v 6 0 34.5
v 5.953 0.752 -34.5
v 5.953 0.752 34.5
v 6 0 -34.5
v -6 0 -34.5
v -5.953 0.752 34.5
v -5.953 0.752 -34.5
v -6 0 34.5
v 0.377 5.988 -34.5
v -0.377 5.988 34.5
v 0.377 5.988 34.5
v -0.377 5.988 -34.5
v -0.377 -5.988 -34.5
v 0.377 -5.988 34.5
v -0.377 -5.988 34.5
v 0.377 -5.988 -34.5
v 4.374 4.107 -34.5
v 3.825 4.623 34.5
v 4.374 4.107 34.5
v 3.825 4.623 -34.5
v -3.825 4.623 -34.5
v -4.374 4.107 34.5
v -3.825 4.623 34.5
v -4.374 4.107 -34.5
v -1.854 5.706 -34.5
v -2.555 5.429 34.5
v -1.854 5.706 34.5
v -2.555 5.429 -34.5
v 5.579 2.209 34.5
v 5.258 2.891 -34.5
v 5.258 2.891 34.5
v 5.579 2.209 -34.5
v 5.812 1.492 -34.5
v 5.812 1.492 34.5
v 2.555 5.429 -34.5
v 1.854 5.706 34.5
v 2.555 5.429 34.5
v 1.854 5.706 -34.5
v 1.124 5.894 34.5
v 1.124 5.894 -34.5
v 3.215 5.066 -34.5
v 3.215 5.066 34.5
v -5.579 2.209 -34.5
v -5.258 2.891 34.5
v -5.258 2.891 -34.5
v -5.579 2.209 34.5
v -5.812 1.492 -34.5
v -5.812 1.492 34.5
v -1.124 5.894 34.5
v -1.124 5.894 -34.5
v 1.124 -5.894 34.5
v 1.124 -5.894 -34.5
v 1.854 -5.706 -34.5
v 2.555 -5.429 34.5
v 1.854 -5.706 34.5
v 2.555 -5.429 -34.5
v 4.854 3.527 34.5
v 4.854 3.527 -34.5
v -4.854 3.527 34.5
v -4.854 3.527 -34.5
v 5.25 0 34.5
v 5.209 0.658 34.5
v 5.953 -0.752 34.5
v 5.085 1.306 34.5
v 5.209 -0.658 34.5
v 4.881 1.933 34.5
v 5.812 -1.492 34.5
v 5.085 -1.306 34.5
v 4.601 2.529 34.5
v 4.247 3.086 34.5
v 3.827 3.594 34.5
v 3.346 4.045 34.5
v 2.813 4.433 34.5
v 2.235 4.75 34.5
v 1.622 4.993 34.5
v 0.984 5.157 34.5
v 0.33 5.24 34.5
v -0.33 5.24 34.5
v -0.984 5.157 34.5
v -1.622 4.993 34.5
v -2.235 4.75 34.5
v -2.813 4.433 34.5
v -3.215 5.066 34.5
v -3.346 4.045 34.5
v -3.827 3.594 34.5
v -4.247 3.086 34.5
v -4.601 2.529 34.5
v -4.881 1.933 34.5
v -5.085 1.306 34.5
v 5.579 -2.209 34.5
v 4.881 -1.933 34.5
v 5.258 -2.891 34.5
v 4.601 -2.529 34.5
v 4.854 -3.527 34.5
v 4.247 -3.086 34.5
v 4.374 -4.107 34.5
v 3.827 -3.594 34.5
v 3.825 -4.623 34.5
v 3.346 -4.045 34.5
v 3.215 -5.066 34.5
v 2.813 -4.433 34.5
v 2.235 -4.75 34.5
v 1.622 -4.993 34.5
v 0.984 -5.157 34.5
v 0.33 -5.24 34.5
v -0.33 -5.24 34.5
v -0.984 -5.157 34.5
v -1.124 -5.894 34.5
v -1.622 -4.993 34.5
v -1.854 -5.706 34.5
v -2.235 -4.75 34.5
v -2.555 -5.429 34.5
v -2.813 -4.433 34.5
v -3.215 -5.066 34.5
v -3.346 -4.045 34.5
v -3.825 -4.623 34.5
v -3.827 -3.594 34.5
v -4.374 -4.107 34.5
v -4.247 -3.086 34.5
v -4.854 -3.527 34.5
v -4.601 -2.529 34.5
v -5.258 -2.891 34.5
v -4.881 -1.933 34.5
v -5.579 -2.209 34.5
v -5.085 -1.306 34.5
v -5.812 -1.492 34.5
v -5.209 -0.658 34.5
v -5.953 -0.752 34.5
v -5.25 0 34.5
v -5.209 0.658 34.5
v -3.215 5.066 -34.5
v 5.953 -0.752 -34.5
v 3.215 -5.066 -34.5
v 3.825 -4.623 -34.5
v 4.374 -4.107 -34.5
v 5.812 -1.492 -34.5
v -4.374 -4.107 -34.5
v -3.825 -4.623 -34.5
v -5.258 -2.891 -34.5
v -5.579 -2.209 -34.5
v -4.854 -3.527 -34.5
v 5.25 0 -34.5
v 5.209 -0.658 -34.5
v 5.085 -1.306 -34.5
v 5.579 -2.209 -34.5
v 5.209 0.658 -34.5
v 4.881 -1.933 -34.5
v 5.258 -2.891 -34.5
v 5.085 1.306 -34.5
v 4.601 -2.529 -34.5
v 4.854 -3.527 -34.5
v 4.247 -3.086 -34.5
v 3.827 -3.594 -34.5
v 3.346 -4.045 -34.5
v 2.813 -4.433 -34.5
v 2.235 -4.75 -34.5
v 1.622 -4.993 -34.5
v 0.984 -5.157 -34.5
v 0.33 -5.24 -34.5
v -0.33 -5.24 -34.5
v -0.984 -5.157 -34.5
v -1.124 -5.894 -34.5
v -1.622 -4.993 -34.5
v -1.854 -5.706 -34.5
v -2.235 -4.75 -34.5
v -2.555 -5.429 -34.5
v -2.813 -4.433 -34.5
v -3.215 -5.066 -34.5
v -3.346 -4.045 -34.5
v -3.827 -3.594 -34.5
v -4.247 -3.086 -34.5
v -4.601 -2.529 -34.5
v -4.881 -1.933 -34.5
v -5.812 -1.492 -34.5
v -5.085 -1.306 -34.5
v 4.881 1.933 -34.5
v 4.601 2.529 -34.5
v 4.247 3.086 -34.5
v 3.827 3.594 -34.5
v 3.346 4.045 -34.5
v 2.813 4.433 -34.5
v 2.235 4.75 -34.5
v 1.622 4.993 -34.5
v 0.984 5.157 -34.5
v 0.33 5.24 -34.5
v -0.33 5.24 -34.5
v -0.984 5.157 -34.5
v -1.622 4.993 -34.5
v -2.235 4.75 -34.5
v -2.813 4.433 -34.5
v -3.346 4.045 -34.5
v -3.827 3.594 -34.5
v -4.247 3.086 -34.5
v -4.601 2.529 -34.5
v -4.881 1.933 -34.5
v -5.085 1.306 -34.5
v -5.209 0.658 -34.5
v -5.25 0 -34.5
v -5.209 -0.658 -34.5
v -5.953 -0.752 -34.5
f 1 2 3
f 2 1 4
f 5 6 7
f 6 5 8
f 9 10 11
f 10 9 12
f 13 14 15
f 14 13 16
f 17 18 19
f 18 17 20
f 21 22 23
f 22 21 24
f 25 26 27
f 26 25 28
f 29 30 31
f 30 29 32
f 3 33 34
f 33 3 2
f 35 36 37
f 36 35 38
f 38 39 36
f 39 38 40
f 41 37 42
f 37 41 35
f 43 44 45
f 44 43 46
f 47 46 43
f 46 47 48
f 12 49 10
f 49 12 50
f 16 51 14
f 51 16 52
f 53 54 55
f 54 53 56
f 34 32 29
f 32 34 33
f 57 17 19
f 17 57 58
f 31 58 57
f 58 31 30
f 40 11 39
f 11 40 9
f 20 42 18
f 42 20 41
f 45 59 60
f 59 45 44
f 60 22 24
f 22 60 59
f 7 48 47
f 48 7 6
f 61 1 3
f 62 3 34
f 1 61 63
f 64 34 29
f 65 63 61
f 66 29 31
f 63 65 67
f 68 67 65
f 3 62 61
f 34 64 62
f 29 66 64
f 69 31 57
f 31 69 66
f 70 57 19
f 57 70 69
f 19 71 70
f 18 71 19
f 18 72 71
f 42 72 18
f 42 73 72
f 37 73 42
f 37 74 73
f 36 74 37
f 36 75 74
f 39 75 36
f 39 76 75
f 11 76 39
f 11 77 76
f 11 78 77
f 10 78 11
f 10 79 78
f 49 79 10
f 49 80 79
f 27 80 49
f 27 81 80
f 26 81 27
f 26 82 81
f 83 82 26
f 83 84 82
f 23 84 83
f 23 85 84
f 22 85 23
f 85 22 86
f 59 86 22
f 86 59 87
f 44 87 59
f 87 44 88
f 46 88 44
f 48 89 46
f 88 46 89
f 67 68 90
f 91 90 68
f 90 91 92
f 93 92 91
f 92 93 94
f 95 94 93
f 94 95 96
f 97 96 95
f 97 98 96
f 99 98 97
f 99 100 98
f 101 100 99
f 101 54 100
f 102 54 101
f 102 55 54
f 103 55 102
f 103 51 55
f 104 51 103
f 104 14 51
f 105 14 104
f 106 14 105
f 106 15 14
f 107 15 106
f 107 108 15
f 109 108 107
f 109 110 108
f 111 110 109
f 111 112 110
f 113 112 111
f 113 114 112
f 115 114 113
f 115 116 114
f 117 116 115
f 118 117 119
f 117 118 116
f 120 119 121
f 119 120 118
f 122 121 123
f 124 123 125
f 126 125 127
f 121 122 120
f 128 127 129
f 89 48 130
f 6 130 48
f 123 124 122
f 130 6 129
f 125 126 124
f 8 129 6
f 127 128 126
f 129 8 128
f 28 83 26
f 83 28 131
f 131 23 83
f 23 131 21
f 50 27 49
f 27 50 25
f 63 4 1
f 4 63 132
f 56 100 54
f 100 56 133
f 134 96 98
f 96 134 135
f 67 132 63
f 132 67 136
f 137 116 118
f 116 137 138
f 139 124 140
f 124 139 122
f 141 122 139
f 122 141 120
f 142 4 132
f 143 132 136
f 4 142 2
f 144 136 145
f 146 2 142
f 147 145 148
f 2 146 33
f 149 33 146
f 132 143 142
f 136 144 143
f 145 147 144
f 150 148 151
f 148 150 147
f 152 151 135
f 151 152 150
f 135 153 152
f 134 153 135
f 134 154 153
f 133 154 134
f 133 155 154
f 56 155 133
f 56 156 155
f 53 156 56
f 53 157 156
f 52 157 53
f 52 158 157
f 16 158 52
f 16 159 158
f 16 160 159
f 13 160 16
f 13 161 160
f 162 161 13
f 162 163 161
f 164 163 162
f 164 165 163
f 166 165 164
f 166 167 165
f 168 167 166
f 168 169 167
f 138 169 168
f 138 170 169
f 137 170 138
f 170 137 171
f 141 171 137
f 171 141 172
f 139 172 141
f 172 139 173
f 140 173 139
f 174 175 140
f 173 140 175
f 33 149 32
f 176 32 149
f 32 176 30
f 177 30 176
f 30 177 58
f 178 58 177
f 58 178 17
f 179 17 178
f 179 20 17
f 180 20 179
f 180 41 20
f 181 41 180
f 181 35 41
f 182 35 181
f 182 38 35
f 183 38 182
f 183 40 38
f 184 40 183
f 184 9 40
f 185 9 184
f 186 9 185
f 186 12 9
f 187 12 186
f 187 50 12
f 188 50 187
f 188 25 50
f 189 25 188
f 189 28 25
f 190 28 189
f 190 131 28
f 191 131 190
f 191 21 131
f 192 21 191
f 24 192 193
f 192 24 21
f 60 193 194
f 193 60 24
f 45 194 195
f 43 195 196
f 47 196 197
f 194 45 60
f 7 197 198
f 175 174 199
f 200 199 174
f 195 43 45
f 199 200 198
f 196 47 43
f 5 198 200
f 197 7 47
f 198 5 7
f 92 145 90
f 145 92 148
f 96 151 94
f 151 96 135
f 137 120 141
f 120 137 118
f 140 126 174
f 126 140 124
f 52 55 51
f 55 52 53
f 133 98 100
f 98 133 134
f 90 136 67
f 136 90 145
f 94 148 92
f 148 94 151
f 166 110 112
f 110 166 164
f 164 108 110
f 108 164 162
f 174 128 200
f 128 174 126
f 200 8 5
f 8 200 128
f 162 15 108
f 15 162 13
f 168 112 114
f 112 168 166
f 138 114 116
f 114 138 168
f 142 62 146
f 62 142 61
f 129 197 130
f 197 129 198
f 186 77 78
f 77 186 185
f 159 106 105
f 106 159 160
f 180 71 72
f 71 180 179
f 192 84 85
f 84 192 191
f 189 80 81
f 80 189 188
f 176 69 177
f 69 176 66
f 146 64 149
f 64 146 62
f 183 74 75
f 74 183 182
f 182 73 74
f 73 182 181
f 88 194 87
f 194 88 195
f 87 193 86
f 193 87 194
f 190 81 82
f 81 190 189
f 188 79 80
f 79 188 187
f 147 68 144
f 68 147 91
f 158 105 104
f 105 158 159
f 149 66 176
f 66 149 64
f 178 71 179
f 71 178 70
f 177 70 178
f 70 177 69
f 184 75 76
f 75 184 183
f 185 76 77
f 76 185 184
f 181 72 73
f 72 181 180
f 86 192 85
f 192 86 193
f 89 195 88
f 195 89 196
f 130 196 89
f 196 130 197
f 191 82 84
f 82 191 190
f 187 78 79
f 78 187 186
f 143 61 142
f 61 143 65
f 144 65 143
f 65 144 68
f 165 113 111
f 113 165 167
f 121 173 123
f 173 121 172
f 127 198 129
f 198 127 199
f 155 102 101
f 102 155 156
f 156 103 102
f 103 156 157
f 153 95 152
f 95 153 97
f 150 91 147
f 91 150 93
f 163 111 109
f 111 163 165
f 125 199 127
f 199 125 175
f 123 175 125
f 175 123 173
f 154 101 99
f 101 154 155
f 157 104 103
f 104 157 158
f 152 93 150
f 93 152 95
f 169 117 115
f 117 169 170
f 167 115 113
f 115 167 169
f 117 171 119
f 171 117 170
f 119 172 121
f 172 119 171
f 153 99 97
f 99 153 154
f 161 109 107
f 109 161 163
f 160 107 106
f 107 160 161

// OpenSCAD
$fn = 50;


difference() {
	union() {
		translate(v = [0, 0, -34.5000000000]) {
			cylinder(h = 69, r = 6.0000000000);
		}
	}
	union() {
		translate(v = [0, 0, -100.0000000000]) {
			cylinder(h = 200, r = 5.2500000000);
		}
	}
}
